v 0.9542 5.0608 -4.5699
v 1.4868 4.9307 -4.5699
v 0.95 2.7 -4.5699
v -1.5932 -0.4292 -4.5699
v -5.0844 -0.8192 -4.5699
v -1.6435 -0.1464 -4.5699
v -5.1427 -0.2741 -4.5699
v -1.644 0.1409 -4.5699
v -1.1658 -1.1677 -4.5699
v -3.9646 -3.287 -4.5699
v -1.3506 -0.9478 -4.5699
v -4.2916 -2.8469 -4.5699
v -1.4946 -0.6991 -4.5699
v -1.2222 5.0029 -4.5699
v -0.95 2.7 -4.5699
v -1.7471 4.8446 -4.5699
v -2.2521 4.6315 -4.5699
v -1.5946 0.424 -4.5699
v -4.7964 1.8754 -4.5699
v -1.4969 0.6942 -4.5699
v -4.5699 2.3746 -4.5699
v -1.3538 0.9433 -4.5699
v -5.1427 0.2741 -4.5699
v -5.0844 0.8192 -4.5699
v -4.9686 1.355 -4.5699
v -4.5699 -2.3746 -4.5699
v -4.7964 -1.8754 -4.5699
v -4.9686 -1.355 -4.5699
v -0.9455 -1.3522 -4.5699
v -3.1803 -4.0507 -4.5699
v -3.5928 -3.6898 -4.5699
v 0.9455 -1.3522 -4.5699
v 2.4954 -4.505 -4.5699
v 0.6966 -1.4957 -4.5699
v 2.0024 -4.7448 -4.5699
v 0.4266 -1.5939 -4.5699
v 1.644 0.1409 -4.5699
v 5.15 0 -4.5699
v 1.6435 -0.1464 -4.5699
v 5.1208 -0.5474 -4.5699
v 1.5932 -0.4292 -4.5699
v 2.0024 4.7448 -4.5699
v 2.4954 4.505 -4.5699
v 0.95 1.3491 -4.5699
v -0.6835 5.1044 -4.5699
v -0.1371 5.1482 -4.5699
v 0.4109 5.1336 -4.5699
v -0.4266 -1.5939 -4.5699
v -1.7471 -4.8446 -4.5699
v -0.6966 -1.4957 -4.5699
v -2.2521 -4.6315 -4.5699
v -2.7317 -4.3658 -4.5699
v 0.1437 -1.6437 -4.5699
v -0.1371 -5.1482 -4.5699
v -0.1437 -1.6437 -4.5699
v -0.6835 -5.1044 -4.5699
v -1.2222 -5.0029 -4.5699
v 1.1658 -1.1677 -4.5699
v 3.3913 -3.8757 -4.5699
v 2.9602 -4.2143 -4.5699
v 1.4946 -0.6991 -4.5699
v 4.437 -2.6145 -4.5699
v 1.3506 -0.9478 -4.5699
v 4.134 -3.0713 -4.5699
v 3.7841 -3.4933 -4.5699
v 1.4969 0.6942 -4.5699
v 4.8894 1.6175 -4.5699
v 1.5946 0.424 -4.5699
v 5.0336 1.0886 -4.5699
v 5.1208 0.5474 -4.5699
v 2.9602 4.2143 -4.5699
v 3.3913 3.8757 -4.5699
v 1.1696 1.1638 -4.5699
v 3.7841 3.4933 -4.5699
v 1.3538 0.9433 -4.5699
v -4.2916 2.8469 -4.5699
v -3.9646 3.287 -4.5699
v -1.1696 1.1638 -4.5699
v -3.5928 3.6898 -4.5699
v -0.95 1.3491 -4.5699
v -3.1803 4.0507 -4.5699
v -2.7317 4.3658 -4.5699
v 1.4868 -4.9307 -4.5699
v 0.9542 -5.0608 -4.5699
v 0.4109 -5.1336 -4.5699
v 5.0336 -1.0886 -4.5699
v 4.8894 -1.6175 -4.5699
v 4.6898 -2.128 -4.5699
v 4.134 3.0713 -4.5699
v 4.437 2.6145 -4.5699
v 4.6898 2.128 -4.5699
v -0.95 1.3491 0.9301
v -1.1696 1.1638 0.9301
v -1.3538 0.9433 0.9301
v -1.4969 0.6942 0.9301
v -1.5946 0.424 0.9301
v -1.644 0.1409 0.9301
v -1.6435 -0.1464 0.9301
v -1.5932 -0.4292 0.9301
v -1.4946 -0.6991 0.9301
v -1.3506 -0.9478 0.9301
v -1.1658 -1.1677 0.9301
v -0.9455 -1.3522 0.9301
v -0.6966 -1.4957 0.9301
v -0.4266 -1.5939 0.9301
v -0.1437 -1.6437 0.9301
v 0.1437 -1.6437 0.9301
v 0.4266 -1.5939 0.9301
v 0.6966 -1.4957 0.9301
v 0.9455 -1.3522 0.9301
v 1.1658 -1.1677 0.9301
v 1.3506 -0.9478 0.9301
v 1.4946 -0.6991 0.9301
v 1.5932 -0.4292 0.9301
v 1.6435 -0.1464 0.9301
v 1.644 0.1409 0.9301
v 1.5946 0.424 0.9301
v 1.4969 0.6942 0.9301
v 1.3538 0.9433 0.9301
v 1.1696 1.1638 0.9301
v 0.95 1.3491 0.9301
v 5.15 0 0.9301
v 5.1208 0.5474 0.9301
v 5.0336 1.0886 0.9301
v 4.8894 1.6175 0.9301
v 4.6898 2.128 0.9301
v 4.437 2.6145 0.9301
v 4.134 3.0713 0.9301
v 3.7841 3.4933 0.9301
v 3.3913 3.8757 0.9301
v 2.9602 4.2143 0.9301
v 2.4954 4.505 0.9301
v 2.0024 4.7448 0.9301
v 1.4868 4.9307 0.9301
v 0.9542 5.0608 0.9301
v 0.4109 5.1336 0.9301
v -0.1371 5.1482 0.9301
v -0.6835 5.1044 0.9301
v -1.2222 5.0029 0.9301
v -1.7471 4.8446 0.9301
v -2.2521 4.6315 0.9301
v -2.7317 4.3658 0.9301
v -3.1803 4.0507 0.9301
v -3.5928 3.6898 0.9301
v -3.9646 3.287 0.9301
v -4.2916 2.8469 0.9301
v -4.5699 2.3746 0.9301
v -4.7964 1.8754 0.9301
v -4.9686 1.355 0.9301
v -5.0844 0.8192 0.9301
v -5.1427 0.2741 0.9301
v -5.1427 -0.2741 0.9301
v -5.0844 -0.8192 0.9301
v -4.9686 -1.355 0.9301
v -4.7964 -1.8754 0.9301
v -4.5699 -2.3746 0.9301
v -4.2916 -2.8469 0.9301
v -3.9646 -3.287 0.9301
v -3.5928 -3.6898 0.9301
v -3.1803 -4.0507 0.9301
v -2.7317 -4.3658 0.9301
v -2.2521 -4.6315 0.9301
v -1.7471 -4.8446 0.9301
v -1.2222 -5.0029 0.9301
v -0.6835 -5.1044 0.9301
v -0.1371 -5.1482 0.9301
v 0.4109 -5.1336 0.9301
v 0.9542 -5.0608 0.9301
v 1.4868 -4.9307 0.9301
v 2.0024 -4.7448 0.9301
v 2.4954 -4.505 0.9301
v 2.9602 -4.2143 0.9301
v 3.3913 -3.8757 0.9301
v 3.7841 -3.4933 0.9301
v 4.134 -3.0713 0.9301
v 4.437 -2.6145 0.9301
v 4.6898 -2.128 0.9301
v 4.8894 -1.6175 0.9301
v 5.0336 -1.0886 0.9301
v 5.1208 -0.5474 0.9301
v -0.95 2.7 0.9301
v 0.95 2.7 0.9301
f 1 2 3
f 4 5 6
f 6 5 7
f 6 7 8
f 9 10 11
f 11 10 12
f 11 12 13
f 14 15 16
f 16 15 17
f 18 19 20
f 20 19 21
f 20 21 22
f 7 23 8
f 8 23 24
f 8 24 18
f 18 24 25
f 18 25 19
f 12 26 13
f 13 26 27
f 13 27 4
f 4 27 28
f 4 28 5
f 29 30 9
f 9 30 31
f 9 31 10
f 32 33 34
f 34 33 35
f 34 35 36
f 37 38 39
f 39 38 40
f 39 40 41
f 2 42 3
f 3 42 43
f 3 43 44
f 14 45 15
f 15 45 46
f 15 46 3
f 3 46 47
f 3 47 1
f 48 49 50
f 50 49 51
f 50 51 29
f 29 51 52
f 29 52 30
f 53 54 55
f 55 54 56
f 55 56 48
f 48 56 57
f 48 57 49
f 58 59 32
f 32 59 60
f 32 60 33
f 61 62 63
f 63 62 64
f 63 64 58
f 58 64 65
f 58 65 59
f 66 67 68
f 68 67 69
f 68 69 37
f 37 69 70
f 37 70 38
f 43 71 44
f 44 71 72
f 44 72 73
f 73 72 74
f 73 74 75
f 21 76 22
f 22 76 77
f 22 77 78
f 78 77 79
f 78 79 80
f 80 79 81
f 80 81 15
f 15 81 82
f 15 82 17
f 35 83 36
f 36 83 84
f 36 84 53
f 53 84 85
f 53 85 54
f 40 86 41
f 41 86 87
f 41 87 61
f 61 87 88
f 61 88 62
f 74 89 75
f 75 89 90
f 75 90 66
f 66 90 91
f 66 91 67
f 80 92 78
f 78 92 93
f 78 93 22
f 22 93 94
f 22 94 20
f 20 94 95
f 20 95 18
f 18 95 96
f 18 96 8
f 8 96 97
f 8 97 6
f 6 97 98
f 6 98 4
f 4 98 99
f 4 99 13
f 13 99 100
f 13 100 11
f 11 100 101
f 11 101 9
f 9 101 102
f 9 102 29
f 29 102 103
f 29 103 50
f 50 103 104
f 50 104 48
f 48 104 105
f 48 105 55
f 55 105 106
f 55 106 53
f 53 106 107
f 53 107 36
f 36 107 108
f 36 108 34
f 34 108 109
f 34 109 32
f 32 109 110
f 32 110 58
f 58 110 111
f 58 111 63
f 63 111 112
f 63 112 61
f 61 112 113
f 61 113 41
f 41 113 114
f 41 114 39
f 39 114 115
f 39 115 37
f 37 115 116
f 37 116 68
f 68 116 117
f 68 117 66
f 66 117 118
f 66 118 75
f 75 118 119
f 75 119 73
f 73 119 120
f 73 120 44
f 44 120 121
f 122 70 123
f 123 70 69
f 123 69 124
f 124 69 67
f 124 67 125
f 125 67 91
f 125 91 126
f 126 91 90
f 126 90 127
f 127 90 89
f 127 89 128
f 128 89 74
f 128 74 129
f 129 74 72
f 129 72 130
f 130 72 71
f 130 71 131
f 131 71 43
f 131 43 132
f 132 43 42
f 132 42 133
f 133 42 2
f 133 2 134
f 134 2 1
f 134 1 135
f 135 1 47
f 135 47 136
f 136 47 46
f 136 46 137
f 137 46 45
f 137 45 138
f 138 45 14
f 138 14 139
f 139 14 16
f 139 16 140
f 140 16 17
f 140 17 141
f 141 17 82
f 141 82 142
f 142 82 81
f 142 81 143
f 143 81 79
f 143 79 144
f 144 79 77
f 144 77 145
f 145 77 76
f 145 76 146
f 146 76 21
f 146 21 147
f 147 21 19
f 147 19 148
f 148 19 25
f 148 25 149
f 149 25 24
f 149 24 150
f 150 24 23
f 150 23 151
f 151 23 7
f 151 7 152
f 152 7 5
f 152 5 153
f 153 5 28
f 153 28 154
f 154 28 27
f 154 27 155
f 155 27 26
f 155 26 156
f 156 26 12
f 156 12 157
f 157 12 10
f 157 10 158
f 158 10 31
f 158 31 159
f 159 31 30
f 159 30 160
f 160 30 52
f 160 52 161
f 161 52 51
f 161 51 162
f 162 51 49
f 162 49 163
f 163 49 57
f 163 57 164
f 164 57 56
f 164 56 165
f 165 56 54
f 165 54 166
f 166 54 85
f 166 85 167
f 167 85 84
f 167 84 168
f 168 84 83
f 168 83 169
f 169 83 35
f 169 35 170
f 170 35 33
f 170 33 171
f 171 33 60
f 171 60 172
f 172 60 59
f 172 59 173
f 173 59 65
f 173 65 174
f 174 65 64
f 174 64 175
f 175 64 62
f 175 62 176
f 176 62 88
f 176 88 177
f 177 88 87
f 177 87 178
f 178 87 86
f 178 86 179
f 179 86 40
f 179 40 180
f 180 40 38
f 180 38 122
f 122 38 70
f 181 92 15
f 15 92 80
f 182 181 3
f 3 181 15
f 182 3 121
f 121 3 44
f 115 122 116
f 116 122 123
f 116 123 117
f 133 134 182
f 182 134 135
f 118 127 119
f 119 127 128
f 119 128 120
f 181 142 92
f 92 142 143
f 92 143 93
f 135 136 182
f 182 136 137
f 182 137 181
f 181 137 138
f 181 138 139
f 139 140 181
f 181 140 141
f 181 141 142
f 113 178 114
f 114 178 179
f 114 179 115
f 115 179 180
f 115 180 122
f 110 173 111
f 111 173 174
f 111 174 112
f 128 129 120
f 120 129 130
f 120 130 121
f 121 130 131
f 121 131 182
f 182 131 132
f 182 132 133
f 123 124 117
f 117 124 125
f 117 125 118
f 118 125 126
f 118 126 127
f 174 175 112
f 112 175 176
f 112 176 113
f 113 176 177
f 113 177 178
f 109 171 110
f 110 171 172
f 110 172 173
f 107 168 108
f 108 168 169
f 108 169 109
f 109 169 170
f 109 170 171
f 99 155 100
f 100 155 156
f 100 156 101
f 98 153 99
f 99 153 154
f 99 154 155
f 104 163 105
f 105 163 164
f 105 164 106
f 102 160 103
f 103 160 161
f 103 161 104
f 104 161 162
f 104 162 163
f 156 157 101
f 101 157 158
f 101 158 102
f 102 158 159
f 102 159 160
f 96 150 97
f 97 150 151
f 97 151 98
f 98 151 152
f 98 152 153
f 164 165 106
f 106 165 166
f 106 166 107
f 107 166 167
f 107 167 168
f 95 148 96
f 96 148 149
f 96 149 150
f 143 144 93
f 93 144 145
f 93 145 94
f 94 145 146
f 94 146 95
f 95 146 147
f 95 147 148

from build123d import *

# Parameters (mm, degrees)
SKETCH1_W           = 3.5
SKETCH1_H           = 3
CUT_EXTRUDE2_DEPTH  = 4
SKETCH7_R           = 5.15
BOSS_EXTRUDE3_DEPTH = 2.5


with BuildPart() as part:
    # Sketch1 → Revolve1 (revolve)
    with BuildSketch(Plane(origin=(0, 0, 0), x_dir=(1, 0, 0), z_dir=(0, 1, 0))):
        with Locations((3.4, 3.069926874)):
            Rectangle(SKETCH1_W, SKETCH1_H)
    revolve(axis=Axis((0, 0, 0), (0, 0, -1)))

    # Sketch6 → Cut-Extrude2 (cut)
    with BuildSketch(Plane.XY.offset(-1.569926874)):
        with BuildLine():
            Line((-0.95, 2.7), (-0.95, 1.349073756))
            ThreePointArc((-0.95, 1.349073756), (0, 1.65), (0.95, 1.349073756))
            Line((0.95, 1.349073756), (0.95, 2.7))
            Line((0.95, 2.7), (-0.95, 2.7))
        make_face()
    extrude(amount=-CUT_EXTRUDE2_DEPTH, mode=Mode.SUBTRACT)

    # Sketch7 → Boss-Extrude3 (add)
    with BuildSketch(Plane.XY.offset(-1.569926874)):
        Circle(SKETCH7_R)
        with BuildLine():
            Line((0.95, 2.7), (0.95, 1.349073756))
            ThreePointArc((0.95, 1.349073756), (0, -1.65), (-0.95, 1.349073756))
            Line((-0.95, 1.349073756), (-0.95, 2.7))
            Line((-0.95, 2.7), (0.95, 2.7))
        make_face(mode=Mode.SUBTRACT)
    extrude(amount=BOSS_EXTRUDE3_DEPTH)


solid = part.part
